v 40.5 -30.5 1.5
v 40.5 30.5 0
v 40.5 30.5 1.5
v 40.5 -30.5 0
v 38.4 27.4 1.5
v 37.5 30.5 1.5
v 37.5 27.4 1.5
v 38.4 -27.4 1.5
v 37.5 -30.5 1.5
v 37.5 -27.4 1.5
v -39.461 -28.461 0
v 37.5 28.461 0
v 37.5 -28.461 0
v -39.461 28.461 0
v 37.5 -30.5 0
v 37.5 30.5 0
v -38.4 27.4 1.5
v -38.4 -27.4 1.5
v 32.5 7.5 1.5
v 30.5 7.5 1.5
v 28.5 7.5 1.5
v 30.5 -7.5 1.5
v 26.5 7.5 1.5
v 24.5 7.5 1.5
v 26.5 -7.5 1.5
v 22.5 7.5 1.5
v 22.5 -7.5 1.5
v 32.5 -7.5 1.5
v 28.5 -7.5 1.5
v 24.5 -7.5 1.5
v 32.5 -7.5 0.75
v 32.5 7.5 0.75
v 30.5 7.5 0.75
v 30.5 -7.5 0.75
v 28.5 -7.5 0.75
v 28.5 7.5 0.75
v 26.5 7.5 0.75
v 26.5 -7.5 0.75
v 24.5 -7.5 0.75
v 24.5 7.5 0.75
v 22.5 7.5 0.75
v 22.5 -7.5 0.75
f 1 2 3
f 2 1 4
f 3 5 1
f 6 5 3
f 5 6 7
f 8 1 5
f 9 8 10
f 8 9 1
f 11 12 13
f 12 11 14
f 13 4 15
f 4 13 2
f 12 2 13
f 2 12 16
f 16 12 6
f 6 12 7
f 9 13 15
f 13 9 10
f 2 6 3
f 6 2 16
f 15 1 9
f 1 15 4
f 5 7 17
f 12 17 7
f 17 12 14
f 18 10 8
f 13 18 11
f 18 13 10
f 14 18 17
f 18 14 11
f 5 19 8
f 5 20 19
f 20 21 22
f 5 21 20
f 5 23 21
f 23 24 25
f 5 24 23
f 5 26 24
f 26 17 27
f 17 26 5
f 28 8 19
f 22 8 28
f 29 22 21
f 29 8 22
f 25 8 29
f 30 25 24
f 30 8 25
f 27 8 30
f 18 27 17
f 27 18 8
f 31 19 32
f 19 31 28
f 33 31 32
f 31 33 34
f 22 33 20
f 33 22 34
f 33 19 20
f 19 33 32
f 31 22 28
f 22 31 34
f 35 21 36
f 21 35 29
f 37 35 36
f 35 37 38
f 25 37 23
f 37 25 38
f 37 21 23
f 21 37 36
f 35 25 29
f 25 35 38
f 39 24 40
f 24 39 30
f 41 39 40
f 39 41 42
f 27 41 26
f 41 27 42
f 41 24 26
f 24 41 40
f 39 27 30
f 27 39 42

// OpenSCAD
L=170;
W=86;
T=1.5;
ML=150;
MW=66;
MH=23;

DL=107;
DW=68.5;
DH=14;

BW=75;
BH=55;


difference() {
    union() {
            translate([BW/2+T,0,0])
            cube_center([2*T,BH+4*T,T]);
            minkowski() {
                cube_center([BW+2-0.2,BH-0.2,0.0001]);
                rotate([0,0,45])
                cylinder($fn=4,h=T,d1=2*T,d2=0.0001);
            }
            
        }
    translate([BW/2-6,0,T/2])
    cube_center([2,15,5]);    
    translate([BW/2-10,0,T/2])
    cube_center([2,15,5]);
    translate([BW/2-14,0,T/2])
    cube_center([2,15,5]);
 
}

module cube_center(dims,r=0) {
    if(r==0) {
        translate([-dims[0]/2, -dims[1]/2, 0])
        cube(dims);
    } else {
        
        minkowski() {
            translate([-dims[0]/2+r, -dims[1]/2+r, 0])
            cube([dims[0]-2*r,dims[1]-2*r,dims[2]]);
            cylinder(r=r,h=0.00001,$fn=32);
        }
    }
}
